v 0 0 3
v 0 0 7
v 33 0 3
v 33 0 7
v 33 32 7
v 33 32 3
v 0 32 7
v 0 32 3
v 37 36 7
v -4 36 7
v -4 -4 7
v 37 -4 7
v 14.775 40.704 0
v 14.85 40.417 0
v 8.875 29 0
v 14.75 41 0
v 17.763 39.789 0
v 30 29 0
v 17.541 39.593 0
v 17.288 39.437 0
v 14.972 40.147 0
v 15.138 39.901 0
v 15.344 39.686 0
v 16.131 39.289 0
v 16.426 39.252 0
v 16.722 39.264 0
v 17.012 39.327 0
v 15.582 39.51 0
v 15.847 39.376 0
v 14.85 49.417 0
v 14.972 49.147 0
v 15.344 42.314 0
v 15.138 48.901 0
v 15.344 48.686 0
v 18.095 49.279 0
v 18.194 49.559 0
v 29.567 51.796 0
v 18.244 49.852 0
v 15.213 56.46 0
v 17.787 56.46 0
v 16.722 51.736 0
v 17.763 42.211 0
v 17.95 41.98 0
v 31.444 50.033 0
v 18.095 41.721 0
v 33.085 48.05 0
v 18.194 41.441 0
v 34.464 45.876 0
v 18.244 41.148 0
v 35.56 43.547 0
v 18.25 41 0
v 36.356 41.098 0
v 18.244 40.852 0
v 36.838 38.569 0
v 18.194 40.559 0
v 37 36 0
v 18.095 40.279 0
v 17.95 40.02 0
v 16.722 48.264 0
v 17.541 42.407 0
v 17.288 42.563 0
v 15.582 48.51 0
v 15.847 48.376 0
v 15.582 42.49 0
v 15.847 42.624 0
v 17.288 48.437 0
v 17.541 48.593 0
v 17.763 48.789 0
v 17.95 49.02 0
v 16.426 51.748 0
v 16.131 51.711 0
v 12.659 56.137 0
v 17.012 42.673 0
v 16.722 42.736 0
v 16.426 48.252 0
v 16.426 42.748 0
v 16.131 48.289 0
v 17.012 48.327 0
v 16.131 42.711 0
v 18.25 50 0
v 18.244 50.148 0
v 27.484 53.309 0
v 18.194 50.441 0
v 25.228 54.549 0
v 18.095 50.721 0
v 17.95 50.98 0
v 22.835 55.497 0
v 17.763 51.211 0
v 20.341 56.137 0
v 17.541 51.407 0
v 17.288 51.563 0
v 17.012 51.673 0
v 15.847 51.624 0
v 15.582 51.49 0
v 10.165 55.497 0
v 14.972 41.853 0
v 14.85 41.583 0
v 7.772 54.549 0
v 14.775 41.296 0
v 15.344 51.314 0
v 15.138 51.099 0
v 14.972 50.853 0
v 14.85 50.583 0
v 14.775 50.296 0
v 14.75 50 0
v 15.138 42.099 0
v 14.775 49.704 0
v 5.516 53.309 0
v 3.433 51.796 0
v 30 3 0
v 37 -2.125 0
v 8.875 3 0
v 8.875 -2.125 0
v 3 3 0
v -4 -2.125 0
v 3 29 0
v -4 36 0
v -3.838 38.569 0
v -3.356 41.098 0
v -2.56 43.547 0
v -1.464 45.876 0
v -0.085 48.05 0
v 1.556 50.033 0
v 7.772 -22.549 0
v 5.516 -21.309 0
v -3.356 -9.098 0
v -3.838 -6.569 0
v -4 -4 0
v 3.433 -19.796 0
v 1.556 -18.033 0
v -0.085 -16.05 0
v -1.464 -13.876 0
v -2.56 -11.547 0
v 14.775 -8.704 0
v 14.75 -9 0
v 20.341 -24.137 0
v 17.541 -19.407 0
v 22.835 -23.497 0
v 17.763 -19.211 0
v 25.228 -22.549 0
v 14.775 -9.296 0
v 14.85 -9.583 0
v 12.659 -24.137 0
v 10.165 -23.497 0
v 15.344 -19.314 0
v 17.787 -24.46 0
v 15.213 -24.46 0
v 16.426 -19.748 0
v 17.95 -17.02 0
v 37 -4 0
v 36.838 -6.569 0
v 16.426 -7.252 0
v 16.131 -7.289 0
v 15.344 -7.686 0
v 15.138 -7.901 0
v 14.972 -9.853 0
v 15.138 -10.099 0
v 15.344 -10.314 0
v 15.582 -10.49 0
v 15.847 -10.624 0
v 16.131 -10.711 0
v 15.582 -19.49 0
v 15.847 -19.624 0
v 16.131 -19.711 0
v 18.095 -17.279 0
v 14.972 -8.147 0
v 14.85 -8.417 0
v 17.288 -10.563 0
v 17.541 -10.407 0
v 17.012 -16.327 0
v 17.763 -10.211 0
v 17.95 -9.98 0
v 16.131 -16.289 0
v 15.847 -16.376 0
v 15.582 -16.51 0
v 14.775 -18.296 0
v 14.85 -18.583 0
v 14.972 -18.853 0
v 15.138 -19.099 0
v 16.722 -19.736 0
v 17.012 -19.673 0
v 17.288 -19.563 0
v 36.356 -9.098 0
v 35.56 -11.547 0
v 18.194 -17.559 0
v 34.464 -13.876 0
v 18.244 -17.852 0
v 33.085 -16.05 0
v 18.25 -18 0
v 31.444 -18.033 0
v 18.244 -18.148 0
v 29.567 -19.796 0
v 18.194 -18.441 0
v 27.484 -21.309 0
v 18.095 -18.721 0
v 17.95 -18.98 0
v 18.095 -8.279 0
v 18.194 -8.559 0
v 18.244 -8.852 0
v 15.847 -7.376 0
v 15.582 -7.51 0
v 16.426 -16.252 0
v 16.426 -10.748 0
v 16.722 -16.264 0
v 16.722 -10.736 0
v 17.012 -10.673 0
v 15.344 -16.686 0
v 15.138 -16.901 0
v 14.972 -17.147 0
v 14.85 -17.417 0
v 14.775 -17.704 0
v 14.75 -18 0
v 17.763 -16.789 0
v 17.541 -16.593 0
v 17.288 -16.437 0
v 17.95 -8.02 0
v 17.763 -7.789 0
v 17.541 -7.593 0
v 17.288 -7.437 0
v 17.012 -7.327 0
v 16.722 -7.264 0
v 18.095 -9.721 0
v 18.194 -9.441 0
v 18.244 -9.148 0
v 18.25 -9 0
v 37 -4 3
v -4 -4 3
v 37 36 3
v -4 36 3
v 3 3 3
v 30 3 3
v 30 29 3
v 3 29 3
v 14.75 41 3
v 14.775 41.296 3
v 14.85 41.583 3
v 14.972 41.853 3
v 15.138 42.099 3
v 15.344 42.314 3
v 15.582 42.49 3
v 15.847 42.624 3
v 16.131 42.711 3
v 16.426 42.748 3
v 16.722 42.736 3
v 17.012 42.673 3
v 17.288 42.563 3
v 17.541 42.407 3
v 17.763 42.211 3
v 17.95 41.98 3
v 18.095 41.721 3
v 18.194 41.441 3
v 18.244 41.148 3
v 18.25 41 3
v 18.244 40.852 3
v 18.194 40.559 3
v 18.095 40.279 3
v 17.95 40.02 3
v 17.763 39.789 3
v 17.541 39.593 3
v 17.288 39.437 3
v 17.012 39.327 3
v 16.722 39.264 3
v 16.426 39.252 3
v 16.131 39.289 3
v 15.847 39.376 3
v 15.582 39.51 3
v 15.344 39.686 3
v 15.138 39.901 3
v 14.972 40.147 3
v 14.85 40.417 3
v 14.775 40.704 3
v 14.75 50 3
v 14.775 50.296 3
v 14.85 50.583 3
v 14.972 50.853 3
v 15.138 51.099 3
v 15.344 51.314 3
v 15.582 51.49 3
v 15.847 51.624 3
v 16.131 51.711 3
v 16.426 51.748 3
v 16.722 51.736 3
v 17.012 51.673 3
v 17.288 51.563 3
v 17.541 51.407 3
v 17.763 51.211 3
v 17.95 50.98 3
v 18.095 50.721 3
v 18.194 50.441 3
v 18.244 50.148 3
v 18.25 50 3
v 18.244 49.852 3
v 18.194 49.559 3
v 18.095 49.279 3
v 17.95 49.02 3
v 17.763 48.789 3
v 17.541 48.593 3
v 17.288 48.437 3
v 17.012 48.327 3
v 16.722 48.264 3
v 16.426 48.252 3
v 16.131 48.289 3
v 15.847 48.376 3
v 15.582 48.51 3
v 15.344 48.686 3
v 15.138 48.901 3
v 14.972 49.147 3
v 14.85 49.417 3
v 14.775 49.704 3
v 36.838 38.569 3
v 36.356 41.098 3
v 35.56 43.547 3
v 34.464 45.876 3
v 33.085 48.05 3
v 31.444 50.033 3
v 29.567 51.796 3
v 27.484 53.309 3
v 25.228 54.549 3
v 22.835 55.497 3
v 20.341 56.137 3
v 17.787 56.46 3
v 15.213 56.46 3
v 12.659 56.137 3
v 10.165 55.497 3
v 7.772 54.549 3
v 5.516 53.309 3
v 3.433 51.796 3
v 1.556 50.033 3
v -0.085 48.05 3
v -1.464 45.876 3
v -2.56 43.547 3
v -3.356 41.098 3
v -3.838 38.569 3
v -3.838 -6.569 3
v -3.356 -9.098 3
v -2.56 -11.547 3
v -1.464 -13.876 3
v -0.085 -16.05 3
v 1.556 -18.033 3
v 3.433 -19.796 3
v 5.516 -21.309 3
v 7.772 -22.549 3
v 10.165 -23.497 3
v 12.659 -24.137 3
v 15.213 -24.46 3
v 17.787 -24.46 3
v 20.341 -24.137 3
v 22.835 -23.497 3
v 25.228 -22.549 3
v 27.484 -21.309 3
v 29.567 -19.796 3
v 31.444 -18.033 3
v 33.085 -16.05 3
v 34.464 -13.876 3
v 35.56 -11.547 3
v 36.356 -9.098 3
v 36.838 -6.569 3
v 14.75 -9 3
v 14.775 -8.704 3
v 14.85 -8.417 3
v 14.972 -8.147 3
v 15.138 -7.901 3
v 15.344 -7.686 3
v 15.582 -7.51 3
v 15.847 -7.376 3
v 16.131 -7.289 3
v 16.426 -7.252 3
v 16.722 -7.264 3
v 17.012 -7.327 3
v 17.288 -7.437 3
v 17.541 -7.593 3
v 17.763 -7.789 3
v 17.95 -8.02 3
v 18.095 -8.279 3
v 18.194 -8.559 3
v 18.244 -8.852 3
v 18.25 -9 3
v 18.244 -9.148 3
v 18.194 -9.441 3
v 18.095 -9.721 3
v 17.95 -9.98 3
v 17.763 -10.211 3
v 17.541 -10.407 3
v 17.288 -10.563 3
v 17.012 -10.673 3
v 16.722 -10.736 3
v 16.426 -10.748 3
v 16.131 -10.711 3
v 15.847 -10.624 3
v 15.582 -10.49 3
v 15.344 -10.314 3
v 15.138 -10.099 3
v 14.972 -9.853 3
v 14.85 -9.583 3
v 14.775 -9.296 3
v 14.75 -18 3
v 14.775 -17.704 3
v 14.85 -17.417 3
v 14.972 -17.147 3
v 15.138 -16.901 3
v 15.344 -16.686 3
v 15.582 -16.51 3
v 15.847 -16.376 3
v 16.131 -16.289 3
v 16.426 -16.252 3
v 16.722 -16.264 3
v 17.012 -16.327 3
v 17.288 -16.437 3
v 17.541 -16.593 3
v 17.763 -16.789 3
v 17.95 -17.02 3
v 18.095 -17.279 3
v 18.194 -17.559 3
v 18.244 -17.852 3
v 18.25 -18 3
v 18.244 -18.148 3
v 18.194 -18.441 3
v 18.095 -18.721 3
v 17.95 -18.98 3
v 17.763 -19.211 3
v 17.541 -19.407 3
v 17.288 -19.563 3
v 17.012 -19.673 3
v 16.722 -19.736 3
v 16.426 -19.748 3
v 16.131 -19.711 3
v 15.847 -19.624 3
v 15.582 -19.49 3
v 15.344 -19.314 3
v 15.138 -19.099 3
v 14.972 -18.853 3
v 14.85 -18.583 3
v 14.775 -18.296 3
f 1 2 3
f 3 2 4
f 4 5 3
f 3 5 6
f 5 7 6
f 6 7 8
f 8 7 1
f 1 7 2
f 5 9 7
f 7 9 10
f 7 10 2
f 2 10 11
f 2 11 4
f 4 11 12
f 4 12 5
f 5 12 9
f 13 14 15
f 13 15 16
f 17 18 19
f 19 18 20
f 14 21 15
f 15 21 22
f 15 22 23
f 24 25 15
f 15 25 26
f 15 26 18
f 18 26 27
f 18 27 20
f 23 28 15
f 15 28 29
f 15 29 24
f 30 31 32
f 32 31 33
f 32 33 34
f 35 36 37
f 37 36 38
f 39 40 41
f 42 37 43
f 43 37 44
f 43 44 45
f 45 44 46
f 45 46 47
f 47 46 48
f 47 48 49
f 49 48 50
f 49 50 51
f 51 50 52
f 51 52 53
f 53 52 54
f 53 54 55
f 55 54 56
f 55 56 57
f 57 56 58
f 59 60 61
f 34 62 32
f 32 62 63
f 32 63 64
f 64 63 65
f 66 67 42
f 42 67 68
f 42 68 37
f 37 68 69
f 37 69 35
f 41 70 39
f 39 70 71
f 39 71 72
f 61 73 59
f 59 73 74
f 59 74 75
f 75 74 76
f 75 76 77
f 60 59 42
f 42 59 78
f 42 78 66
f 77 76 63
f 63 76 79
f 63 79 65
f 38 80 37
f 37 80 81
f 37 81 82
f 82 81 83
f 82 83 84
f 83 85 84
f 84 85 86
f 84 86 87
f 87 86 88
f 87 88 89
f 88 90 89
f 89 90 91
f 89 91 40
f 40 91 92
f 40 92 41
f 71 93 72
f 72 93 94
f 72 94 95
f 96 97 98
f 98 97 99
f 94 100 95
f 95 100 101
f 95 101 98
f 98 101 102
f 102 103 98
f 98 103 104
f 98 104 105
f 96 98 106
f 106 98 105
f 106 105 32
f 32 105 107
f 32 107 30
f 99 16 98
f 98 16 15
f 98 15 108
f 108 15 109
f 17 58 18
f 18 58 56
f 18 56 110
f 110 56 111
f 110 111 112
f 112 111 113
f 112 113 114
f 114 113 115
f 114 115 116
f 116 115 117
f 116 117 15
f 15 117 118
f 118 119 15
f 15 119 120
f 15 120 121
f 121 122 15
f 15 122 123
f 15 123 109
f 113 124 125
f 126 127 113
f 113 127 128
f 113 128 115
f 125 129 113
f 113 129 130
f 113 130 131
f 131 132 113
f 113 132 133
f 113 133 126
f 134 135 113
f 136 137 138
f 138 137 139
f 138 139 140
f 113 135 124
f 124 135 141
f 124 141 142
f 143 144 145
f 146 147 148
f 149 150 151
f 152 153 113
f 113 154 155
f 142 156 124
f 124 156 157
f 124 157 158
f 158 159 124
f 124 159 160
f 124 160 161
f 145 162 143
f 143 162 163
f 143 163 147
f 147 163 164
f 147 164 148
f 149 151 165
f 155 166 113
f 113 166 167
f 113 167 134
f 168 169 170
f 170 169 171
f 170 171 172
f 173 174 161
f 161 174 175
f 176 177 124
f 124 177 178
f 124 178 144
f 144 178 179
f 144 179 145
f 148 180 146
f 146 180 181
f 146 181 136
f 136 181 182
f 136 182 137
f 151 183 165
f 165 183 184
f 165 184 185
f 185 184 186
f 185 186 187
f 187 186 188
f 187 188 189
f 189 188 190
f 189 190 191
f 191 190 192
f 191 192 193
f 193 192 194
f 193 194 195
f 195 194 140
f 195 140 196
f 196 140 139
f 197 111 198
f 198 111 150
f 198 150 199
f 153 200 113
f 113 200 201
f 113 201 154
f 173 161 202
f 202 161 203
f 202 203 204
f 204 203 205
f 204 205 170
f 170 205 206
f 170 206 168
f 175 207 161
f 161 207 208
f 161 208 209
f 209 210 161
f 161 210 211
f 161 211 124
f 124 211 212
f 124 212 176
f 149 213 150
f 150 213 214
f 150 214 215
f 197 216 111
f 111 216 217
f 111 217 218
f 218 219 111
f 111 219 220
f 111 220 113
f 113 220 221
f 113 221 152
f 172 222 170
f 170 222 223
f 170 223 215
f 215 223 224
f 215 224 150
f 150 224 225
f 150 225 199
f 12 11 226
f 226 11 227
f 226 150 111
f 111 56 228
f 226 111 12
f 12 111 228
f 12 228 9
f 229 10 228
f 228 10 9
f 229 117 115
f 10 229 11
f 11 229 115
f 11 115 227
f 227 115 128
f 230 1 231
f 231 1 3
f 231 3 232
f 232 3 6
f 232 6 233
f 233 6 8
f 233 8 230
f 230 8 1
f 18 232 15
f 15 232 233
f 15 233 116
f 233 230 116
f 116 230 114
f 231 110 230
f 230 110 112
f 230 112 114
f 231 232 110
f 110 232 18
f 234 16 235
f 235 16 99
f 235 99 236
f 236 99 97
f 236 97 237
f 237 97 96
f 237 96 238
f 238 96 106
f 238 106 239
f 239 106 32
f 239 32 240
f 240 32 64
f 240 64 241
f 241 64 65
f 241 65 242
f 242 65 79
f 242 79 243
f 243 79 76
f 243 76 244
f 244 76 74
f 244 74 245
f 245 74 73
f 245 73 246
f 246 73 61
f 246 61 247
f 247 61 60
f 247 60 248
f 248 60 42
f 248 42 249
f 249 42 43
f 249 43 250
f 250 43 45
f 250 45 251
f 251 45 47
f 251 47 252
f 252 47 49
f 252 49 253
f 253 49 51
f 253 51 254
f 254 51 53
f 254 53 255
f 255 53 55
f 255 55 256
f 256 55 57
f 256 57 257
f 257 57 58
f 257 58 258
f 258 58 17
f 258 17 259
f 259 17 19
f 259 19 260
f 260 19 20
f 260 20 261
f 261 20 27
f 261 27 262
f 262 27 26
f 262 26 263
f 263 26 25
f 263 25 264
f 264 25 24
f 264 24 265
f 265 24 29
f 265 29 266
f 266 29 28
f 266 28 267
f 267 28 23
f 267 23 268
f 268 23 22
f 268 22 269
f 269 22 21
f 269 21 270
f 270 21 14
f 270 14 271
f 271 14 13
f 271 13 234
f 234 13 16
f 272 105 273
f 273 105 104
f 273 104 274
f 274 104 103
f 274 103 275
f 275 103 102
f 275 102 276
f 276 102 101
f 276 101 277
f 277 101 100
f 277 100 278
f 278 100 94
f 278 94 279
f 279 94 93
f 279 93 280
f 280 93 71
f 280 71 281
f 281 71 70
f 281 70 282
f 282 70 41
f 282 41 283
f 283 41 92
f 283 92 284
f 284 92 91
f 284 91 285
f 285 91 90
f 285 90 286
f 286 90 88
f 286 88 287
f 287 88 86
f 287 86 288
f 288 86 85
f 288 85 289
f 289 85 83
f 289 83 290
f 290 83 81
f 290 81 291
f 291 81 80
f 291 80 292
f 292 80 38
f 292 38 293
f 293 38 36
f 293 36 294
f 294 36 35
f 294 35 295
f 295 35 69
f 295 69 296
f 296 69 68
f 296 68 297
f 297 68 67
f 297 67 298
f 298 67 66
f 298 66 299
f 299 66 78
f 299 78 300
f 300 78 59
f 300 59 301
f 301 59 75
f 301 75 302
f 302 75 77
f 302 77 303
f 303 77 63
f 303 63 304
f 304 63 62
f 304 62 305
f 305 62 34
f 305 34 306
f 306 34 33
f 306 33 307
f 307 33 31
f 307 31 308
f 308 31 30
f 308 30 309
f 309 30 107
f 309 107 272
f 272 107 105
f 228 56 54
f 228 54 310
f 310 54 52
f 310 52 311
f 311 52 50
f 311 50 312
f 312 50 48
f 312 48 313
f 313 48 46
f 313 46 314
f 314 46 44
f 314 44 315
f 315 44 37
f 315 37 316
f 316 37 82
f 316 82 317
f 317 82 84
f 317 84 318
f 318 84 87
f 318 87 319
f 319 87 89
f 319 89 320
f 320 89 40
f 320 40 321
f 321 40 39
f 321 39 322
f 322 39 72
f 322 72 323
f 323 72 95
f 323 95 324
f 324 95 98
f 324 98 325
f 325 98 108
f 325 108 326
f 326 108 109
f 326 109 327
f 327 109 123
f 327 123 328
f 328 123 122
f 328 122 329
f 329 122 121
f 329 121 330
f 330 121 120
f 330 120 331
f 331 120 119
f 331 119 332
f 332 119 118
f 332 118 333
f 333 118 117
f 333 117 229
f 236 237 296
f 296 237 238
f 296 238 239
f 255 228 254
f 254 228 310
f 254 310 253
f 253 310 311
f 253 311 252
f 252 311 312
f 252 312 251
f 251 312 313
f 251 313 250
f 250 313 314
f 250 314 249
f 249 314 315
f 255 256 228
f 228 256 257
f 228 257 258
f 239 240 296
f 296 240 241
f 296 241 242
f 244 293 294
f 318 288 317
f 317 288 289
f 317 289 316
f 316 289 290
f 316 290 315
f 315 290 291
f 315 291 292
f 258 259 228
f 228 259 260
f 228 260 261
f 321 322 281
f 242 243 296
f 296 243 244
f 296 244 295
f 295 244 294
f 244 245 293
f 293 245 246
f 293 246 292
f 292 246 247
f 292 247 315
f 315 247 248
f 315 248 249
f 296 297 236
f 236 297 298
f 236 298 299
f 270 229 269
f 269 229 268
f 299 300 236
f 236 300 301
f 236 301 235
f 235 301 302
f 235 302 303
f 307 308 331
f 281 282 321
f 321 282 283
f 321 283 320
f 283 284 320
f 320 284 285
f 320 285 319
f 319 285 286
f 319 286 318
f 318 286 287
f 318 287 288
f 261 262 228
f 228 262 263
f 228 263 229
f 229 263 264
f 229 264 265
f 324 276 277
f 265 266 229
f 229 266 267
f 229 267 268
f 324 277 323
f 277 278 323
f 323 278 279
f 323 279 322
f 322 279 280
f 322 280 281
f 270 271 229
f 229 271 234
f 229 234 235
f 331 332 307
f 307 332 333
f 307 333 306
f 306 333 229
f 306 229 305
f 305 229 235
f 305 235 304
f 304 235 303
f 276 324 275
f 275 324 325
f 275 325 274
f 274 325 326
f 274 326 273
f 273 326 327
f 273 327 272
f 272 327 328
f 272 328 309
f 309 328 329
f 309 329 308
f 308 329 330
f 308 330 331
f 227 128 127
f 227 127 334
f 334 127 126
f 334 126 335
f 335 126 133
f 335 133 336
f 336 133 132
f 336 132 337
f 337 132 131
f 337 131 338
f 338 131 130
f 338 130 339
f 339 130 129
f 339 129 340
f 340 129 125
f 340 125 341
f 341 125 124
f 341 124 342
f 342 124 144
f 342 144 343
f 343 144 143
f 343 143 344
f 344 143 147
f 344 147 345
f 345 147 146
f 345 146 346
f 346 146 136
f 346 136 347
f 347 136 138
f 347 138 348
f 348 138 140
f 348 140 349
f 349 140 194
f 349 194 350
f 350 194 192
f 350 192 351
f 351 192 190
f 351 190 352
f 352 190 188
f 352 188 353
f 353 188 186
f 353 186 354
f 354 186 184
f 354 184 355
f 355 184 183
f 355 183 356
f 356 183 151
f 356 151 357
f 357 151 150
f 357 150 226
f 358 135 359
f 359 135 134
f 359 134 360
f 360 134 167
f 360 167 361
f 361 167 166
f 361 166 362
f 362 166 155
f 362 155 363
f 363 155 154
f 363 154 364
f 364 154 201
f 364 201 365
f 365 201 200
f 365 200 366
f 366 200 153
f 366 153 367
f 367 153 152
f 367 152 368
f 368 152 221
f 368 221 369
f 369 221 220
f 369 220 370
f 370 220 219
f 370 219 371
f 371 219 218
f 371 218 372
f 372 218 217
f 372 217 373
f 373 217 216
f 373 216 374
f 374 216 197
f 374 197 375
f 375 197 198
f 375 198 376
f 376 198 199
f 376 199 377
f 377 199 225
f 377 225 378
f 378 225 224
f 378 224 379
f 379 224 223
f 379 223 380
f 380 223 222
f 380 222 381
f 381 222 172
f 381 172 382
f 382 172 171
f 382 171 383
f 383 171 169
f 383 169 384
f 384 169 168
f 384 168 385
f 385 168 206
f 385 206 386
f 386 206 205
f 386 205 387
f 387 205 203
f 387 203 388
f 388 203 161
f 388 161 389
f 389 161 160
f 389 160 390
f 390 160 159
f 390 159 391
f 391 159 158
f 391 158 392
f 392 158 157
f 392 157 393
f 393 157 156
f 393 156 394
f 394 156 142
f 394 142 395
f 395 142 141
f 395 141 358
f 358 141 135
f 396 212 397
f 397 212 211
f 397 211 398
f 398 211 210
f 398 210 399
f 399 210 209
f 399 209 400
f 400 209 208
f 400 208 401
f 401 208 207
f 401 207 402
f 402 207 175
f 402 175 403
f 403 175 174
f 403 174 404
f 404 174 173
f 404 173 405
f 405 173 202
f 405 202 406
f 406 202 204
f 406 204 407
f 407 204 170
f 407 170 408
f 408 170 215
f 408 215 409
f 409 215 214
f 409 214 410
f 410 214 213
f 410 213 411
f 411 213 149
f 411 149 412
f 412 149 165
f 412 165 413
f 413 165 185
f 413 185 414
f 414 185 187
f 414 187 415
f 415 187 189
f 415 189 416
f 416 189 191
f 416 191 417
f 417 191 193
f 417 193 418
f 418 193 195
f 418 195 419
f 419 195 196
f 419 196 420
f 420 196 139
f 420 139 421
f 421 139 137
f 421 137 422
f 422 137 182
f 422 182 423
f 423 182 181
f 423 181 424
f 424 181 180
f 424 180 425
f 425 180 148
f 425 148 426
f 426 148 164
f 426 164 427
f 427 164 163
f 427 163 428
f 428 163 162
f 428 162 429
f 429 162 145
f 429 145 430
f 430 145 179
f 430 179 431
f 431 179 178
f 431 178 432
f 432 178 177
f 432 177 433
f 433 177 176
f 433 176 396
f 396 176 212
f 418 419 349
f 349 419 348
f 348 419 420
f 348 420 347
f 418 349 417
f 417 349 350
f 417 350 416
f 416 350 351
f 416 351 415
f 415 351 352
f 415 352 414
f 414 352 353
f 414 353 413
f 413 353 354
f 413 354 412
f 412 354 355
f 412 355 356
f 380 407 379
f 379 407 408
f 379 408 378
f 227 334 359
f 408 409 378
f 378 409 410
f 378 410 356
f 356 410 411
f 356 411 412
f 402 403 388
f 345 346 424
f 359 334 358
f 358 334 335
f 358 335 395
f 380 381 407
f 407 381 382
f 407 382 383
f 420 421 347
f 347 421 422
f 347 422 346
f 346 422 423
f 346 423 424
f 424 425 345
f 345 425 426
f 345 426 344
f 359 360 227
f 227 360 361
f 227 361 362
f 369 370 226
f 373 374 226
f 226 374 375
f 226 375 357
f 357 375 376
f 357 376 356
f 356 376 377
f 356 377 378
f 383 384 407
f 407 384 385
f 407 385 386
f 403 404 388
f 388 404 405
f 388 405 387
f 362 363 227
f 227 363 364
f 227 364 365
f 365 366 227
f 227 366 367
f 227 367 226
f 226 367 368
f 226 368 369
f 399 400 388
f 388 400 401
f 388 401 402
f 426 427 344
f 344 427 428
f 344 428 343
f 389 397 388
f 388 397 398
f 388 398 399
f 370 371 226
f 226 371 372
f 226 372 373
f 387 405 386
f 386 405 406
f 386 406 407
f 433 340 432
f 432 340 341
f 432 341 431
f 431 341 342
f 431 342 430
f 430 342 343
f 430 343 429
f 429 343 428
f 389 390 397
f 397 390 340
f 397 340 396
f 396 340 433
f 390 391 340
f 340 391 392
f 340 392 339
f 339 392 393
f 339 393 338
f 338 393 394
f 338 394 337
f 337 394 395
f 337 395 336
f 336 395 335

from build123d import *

# Parameters (mm, degrees)
SKETCH_1_W      = 41
SKETCH_1_H      = 40
SKETCH_1_W_2    = 33
SKETCH_1_H_2    = 32
EXTRUDE_5_DEPTH = 7
SKETCH_1_7_W    = 33
SKETCH_1_7_H    = 32
SKETCH_1_7_W_2  = 27
SKETCH_1_7_H_2  = 26
EXTRUDE_6_DEPTH = 3
SKETCH_1_9_R    = 1.75
EXTRUDE_7_DEPTH = 3


with BuildPart() as part:
    # 草图1 → 凸台-拉伸5 (new body)
    with BuildSketch(Plane.XY):
        with Locations((16.5, 16)):
            Rectangle(SKETCH_1_W, SKETCH_1_H)
        with Locations((16.5, 16)):
            Rectangle(SKETCH_1_W_2, SKETCH_1_H_2, mode=Mode.SUBTRACT)
    extrude(amount=EXTRUDE_5_DEPTH)

    # 草图1<7> → 凸台-拉伸6 (add)
    with BuildSketch(Plane.XY):
        with Locations((16.5, 16)):
            Rectangle(SKETCH_1_7_W, SKETCH_1_7_H)
        with Locations((16.5, 16)):
            Rectangle(SKETCH_1_7_W_2, SKETCH_1_7_H_2, mode=Mode.SUBTRACT)
    extrude(amount=EXTRUDE_6_DEPTH)

    # 草图1<9> → 凸台-拉伸7 (add)
    # profile 1 of 2: a face of its own
    with BuildSketch(Plane.XY):
        with BuildLine():
            Line((37, -4), (-4, -4))
            ThreePointArc((-4, -4), (16.5, -24.5), (37, -4))
        make_face()
        with Locations((16.5, -18)):
            Circle(SKETCH_1_9_R, mode=Mode.SUBTRACT)
        with Locations((16.5, -9)):
            Circle(SKETCH_1_9_R, mode=Mode.SUBTRACT)
    # profile 2 of 2: a face of its own
    with BuildSketch(Plane.XY):
        with BuildLine():
            ThreePointArc((37, 36), (16.5, 56.5), (-4, 36))
            Line((-4, 36), (37, 36))
        make_face()
        with Locations((16.5, 41)):
            Circle(SKETCH_1_9_R, mode=Mode.SUBTRACT)
        with Locations((16.5, 50)):
            Circle(SKETCH_1_9_R, mode=Mode.SUBTRACT)
    extrude(amount=EXTRUDE_7_DEPTH)


solid = part.part
